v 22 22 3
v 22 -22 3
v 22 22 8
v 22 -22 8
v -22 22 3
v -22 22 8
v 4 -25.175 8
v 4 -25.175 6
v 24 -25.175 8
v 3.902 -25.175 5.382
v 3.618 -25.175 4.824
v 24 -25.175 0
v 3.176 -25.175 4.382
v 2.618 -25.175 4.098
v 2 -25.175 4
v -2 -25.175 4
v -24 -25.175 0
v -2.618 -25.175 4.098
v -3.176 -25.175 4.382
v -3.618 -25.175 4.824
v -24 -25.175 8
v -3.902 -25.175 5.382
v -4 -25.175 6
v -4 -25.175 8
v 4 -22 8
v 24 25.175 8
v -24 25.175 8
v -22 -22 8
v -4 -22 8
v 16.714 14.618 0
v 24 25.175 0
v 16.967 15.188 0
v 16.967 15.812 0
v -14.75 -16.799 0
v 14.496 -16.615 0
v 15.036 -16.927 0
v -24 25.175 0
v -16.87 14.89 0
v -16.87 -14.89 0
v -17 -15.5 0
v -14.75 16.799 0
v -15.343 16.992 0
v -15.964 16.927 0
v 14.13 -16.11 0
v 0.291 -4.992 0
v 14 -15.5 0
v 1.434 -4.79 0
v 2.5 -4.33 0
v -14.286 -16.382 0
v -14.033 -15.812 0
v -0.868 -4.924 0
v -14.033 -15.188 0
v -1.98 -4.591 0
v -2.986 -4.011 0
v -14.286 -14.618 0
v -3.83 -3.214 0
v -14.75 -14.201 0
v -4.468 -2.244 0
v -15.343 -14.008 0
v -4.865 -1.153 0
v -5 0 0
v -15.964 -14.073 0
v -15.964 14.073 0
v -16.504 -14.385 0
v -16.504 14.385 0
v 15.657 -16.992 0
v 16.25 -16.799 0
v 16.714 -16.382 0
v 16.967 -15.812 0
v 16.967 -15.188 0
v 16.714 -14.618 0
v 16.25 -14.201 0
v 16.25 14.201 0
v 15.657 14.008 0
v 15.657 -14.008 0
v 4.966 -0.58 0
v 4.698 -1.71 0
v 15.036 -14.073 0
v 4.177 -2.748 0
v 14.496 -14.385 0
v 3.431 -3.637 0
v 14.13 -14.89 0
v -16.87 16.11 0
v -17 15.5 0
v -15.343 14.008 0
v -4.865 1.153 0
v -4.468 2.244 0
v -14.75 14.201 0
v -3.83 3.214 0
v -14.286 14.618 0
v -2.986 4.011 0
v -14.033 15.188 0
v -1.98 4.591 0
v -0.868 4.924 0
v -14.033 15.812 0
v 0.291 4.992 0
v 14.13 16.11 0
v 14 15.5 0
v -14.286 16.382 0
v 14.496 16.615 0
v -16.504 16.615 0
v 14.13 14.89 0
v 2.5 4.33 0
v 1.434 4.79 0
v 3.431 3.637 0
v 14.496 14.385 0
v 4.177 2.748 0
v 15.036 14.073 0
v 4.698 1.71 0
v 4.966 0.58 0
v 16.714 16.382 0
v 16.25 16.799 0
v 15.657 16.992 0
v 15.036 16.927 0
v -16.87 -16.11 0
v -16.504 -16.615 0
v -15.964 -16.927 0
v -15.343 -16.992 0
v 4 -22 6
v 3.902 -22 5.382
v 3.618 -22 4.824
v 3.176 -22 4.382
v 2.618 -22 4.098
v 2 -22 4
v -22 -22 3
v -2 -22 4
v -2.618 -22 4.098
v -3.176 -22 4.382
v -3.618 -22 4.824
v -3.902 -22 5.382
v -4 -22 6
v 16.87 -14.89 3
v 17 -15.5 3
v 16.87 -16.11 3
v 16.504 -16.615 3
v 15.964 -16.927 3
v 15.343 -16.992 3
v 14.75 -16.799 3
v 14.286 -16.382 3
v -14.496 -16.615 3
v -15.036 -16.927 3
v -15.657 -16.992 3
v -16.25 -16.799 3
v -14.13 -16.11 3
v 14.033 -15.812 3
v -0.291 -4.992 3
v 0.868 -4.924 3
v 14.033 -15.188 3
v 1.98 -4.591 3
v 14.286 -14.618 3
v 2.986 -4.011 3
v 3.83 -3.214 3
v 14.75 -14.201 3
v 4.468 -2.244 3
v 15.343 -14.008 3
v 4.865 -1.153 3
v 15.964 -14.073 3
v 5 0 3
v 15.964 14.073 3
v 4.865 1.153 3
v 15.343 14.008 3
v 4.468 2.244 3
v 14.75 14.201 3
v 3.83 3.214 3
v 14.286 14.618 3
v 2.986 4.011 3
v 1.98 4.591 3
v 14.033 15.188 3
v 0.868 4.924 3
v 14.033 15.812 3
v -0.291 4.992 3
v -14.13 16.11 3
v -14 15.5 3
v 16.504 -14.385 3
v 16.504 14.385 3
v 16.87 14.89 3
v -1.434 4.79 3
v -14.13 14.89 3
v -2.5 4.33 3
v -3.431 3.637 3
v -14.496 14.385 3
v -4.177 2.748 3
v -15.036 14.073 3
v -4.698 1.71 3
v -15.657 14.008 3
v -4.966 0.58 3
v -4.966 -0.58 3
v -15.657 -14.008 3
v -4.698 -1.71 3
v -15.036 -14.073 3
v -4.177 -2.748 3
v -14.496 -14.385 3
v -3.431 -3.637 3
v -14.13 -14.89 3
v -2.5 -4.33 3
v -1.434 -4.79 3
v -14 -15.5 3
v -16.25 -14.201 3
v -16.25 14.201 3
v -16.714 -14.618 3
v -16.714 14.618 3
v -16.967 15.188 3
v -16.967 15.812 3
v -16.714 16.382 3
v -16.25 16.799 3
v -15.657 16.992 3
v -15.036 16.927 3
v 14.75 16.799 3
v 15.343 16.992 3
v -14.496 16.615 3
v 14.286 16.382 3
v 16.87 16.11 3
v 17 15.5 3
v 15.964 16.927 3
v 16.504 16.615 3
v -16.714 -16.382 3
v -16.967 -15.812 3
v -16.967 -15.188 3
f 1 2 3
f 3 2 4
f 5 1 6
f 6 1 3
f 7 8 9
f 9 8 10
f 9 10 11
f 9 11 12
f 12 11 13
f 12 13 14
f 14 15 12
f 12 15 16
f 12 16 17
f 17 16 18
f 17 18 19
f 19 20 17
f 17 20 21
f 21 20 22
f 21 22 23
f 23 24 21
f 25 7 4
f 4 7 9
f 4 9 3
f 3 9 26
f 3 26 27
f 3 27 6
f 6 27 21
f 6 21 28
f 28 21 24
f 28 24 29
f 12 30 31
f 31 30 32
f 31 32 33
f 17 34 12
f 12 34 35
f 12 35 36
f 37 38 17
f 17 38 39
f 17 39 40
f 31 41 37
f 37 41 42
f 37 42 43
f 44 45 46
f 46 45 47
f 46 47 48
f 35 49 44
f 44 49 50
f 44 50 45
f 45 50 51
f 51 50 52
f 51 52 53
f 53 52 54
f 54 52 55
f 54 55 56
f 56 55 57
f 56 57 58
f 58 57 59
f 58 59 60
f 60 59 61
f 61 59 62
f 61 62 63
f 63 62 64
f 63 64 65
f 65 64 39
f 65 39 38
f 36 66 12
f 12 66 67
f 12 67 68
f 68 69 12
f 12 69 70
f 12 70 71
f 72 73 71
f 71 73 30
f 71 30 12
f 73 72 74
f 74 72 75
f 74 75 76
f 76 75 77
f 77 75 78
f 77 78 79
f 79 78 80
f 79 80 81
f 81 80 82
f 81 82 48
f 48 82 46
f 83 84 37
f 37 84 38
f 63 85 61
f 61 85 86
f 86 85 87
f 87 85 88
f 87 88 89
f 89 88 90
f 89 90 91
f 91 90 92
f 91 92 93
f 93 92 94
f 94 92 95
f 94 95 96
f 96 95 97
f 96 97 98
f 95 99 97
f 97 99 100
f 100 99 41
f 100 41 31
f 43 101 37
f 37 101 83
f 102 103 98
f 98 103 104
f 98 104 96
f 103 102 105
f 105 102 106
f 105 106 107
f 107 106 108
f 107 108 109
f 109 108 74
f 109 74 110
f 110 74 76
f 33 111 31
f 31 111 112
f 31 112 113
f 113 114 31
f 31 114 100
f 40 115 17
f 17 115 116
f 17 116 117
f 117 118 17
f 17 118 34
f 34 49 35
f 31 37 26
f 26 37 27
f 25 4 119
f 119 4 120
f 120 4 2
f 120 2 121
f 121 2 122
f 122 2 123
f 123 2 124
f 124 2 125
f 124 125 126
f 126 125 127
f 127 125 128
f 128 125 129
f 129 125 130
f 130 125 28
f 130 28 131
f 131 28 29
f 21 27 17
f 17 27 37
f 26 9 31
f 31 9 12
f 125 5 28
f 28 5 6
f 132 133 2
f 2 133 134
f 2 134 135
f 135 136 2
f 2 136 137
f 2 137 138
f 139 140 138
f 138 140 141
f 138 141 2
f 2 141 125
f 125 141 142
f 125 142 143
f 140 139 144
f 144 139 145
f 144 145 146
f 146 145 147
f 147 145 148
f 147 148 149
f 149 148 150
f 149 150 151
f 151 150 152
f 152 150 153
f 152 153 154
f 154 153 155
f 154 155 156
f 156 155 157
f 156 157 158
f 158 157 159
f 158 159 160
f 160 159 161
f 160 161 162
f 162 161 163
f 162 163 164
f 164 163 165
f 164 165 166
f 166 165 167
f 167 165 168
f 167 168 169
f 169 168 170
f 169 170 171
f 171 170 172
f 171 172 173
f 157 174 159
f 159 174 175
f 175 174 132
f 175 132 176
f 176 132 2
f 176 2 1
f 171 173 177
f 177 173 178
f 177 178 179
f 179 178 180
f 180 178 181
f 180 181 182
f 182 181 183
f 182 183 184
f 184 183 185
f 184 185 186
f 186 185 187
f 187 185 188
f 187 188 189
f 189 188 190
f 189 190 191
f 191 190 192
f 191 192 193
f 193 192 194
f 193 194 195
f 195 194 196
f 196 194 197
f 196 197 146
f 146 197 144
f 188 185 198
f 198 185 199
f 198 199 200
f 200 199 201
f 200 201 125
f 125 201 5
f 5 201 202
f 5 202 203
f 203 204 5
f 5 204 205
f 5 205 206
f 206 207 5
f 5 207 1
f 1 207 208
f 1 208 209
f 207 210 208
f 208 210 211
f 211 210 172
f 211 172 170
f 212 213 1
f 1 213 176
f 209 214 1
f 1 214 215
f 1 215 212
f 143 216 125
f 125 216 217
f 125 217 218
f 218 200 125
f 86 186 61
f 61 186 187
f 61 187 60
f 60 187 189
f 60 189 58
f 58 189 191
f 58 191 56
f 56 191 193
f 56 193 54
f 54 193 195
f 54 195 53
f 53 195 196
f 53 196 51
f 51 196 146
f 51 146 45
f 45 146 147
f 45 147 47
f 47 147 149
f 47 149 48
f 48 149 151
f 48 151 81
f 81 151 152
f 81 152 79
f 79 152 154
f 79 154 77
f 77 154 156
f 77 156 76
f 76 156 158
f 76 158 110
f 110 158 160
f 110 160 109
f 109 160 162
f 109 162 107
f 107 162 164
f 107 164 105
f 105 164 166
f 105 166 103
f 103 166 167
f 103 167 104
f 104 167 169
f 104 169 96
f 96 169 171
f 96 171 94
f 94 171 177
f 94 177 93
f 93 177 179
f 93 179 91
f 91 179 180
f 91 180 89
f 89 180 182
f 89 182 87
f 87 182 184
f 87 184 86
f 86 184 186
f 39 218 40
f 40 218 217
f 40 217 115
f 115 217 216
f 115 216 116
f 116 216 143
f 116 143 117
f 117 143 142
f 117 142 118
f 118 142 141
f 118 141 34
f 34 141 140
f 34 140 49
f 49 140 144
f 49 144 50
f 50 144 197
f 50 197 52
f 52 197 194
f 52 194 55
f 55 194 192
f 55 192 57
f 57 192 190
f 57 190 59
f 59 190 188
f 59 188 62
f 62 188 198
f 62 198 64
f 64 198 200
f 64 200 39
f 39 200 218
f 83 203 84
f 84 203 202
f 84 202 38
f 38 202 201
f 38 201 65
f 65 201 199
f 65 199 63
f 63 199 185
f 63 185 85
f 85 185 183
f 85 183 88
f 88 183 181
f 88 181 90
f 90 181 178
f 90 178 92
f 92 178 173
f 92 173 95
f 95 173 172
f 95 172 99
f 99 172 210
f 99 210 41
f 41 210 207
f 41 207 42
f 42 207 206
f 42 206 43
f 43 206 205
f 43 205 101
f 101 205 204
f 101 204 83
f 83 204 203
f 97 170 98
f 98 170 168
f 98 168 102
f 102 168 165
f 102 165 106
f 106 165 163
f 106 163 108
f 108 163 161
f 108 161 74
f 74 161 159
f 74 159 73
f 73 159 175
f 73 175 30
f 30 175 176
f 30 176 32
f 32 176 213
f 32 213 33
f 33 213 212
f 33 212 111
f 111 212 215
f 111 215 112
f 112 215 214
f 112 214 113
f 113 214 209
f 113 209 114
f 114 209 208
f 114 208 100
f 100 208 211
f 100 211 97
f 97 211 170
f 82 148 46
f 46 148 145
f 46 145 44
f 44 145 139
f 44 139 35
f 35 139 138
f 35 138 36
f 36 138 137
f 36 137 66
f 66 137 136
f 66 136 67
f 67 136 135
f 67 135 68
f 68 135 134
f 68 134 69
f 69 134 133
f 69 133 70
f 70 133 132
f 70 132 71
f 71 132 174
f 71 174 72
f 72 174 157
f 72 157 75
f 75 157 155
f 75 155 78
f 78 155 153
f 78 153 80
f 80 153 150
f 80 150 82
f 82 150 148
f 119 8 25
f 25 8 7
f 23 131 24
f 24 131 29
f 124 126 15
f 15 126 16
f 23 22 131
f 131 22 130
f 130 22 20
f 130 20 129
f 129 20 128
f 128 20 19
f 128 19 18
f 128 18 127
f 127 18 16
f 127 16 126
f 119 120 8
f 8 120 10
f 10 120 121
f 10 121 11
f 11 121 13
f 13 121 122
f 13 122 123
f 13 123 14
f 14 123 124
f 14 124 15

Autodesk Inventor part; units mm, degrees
ref_plane "YZ Plane" through (0, 0, 0) normal (1, 0, 0) x (0, 1, 0)
ref_plane "XZ Plane" through (0, 0, 0) normal (0, 1, 0) x (-1, 0, 0)
ref_plane "XY Plane" through (0, 0, 0) normal (0, 0, 1) x (1, 0, 0)
sketch "Sketch1" plane through (0, 0, 0) normal (0, 0, 1) x (1, 0, 0)
  line L0 (0, 0) -> (22, 0)
  line L1 (22, 0) -> (22, 22)
  line L2 (22, 22) -> (-22, 22)
  line L3 (-22, 22) -> (-22, -22)
  line L4 (-22, -22) -> (22, -22)
  line L5 (22, -22) -> (22, 22)
  line L6 (-22, 22) -> (-22, 25.175)
  line L7 (-22, 25.175) -> (-25.175, 25.175)
  line L8 (22, -22) -> (25.175, -22)
  line L9 (25.175, -22) -> (25.175, -25.175)
  line L10 (-25.175, 25.175) -> (25.175, 25.175)
  line L11 (25.175, 25.175) -> (25.175, -25.175)
  line L12 (25.175, -25.175) -> (-25.175, -25.175)
  line L13 (-25.175, -25.175) -> (-25.175, 25.175)
  dimension "d0" = 22
  dimension "d1" = 22
  dimension "d2" = 44
  dimension "d3" = 44
  dimension "d4" = 3.175
  dimension "d5" = 3.175
  dimension "d6" = 3.175
  dimension "d7" = 3.175
extrude "Extrusion1" add sketch "Sketch1" along normal blind 8 contours L1 L2 L6 L10 L11 L8 L5 | L8 L9 L12 L13 L7 L6 L3 L4
sketch "Sketch2" plane through (0, 0, 0) normal (0, 0, -1) x (-1, 0, 0)
  line L0 (22, 22) -> (-22, 22) projected
  line L1 (-22, 22) -> (-22, -22) projected
  line L2 (22, 22) -> (-22, 22)
  line L3 (-22, 22) -> (-22, -22)
  line L4 (-22, -22) -> (22, -22)
  line L5 (22, -22) -> (22, 22)
  point P0 (0, 0)
extrude "Extrusion2" add sketch "Sketch2" against normal blind 3
sketch "Sketch3" plane through (0, 0, 3) normal (0, 0, 1) x (1, 0, 0)
  line L0 (-22, 22) -> (22, 22) projected
  line L1 (-22, 22) -> (0, 22)
  point P0 (0, 0)
  point P1 (0, 0)
hole "Hole1" at (0, 0, 3) direction (0, 0, -1) diameter 10 end through all
sketch "Sketch4" plane through (0, 0, 3) normal (0, 0, 1) x (1, 0, 0)
  line L0 (0, 0) -> (0, 15.5)
  line L1 (0, 15.5) -> (15.5, 15.5)
  line L2 (15.5, 15.5) -> (-15.5, 15.5)
  line L3 (-15.5, 15.5) -> (-15.5, -15.5)
  line L4 (-15.5, -15.5) -> (15.5, -15.5)
  line L5 (15.5, -15.5) -> (15.5, 15.5)
  dimension "d19" = 15.5
  dimension "d20" = 15.5
  dimension "d21" = 31
  dimension "d22" = 31
hole "Hole2" at (-15.5, 15.5, 3) at (15.5, 15.5, 3) at (15.5, -15.5, 3) at (-15.5, -15.5, 3) direction (0, 0, -1) diameter 3 end through all
sketch "Sketch5" plane through (0, 0, 8) normal (0, 0, 1) x (1, 0, 0)
  line L0 (22, 22) -> (22, -22) projected
  line L1 (22, -22) -> (22, -25.175)
  line L2 (-25.175, -25.175) -> (25.175, -25.175) projected
  line L3 (22, -25.175) -> (24, -25.175)
  line L4 (22, -22) -> (-22, -22) projected
  line L5 (-22, -22) -> (-22, -25.175)
  line L6 (-22, -25.175) -> (-24, -25.175)
  line L7 (25.175, -25.175) -> (25.175, 25.175) projected
  line L8 (24, -25.175) -> (25.175, -25.175)
  line L9 (25.175, -25.175) -> (25.175, 25.175)
  line L10 (25.175, 25.175) -> (24, 25.175)
  line L11 (24, 25.175) -> (24, -25.175)
  line L12 (25.175, 25.175) -> (-25.175, 25.175) projected
  line L13 (-24, -25.175) -> (-25.175, -25.175)
  line L14 (-25.175, -25.175) -> (-25.175, 25.175)
  line L15 (-25.175, 25.175) -> (-24, 25.175)
  line L16 (-24, 25.175) -> (-24, -25.175)
  point P0 (0, 0)
  dimension "d30" = 2
  dimension "d31" = 2
extrude "Extrusion3" cut sketch "Sketch5" against normal blind 8 contours L11 L10 L7 L2 | L2 L14 L12 L16
sketch "Sketch6" plane through (0, 0, 8) normal (0, 0, 1) x (1, 0, 0)
  line L0 (22, -22) -> (-22, -22) projected
  line L1 (-24, -25.175) -> (24, -25.175) projected
  line L2 (0, -22) -> (-4, -22)
  line L3 (-4, -22) -> (-4, -25.175)
  line L4 (-4, -25.175) -> (0, -25.175)
  line L5 (0, -25.175) -> (0, -22)
  line L6 (0, -22) -> (4, -22)
  line L7 (4, -22) -> (4, -25.175)
  line L8 (4, -25.175) -> (0, -25.175)
  line L9 (0, -25.175) -> (0, -22)
  point P0 (0, 0)
  dimension "d34" = 4
  dimension "d35" = 4
extrude "Extrusion4" cut sketch "Sketch6" against normal blind 4
fillet "Fillet1" radius 2 2 edges at (-4, -23.5875, 4) (4, -23.5875, 4)
properties part number "RollMotorMount"
